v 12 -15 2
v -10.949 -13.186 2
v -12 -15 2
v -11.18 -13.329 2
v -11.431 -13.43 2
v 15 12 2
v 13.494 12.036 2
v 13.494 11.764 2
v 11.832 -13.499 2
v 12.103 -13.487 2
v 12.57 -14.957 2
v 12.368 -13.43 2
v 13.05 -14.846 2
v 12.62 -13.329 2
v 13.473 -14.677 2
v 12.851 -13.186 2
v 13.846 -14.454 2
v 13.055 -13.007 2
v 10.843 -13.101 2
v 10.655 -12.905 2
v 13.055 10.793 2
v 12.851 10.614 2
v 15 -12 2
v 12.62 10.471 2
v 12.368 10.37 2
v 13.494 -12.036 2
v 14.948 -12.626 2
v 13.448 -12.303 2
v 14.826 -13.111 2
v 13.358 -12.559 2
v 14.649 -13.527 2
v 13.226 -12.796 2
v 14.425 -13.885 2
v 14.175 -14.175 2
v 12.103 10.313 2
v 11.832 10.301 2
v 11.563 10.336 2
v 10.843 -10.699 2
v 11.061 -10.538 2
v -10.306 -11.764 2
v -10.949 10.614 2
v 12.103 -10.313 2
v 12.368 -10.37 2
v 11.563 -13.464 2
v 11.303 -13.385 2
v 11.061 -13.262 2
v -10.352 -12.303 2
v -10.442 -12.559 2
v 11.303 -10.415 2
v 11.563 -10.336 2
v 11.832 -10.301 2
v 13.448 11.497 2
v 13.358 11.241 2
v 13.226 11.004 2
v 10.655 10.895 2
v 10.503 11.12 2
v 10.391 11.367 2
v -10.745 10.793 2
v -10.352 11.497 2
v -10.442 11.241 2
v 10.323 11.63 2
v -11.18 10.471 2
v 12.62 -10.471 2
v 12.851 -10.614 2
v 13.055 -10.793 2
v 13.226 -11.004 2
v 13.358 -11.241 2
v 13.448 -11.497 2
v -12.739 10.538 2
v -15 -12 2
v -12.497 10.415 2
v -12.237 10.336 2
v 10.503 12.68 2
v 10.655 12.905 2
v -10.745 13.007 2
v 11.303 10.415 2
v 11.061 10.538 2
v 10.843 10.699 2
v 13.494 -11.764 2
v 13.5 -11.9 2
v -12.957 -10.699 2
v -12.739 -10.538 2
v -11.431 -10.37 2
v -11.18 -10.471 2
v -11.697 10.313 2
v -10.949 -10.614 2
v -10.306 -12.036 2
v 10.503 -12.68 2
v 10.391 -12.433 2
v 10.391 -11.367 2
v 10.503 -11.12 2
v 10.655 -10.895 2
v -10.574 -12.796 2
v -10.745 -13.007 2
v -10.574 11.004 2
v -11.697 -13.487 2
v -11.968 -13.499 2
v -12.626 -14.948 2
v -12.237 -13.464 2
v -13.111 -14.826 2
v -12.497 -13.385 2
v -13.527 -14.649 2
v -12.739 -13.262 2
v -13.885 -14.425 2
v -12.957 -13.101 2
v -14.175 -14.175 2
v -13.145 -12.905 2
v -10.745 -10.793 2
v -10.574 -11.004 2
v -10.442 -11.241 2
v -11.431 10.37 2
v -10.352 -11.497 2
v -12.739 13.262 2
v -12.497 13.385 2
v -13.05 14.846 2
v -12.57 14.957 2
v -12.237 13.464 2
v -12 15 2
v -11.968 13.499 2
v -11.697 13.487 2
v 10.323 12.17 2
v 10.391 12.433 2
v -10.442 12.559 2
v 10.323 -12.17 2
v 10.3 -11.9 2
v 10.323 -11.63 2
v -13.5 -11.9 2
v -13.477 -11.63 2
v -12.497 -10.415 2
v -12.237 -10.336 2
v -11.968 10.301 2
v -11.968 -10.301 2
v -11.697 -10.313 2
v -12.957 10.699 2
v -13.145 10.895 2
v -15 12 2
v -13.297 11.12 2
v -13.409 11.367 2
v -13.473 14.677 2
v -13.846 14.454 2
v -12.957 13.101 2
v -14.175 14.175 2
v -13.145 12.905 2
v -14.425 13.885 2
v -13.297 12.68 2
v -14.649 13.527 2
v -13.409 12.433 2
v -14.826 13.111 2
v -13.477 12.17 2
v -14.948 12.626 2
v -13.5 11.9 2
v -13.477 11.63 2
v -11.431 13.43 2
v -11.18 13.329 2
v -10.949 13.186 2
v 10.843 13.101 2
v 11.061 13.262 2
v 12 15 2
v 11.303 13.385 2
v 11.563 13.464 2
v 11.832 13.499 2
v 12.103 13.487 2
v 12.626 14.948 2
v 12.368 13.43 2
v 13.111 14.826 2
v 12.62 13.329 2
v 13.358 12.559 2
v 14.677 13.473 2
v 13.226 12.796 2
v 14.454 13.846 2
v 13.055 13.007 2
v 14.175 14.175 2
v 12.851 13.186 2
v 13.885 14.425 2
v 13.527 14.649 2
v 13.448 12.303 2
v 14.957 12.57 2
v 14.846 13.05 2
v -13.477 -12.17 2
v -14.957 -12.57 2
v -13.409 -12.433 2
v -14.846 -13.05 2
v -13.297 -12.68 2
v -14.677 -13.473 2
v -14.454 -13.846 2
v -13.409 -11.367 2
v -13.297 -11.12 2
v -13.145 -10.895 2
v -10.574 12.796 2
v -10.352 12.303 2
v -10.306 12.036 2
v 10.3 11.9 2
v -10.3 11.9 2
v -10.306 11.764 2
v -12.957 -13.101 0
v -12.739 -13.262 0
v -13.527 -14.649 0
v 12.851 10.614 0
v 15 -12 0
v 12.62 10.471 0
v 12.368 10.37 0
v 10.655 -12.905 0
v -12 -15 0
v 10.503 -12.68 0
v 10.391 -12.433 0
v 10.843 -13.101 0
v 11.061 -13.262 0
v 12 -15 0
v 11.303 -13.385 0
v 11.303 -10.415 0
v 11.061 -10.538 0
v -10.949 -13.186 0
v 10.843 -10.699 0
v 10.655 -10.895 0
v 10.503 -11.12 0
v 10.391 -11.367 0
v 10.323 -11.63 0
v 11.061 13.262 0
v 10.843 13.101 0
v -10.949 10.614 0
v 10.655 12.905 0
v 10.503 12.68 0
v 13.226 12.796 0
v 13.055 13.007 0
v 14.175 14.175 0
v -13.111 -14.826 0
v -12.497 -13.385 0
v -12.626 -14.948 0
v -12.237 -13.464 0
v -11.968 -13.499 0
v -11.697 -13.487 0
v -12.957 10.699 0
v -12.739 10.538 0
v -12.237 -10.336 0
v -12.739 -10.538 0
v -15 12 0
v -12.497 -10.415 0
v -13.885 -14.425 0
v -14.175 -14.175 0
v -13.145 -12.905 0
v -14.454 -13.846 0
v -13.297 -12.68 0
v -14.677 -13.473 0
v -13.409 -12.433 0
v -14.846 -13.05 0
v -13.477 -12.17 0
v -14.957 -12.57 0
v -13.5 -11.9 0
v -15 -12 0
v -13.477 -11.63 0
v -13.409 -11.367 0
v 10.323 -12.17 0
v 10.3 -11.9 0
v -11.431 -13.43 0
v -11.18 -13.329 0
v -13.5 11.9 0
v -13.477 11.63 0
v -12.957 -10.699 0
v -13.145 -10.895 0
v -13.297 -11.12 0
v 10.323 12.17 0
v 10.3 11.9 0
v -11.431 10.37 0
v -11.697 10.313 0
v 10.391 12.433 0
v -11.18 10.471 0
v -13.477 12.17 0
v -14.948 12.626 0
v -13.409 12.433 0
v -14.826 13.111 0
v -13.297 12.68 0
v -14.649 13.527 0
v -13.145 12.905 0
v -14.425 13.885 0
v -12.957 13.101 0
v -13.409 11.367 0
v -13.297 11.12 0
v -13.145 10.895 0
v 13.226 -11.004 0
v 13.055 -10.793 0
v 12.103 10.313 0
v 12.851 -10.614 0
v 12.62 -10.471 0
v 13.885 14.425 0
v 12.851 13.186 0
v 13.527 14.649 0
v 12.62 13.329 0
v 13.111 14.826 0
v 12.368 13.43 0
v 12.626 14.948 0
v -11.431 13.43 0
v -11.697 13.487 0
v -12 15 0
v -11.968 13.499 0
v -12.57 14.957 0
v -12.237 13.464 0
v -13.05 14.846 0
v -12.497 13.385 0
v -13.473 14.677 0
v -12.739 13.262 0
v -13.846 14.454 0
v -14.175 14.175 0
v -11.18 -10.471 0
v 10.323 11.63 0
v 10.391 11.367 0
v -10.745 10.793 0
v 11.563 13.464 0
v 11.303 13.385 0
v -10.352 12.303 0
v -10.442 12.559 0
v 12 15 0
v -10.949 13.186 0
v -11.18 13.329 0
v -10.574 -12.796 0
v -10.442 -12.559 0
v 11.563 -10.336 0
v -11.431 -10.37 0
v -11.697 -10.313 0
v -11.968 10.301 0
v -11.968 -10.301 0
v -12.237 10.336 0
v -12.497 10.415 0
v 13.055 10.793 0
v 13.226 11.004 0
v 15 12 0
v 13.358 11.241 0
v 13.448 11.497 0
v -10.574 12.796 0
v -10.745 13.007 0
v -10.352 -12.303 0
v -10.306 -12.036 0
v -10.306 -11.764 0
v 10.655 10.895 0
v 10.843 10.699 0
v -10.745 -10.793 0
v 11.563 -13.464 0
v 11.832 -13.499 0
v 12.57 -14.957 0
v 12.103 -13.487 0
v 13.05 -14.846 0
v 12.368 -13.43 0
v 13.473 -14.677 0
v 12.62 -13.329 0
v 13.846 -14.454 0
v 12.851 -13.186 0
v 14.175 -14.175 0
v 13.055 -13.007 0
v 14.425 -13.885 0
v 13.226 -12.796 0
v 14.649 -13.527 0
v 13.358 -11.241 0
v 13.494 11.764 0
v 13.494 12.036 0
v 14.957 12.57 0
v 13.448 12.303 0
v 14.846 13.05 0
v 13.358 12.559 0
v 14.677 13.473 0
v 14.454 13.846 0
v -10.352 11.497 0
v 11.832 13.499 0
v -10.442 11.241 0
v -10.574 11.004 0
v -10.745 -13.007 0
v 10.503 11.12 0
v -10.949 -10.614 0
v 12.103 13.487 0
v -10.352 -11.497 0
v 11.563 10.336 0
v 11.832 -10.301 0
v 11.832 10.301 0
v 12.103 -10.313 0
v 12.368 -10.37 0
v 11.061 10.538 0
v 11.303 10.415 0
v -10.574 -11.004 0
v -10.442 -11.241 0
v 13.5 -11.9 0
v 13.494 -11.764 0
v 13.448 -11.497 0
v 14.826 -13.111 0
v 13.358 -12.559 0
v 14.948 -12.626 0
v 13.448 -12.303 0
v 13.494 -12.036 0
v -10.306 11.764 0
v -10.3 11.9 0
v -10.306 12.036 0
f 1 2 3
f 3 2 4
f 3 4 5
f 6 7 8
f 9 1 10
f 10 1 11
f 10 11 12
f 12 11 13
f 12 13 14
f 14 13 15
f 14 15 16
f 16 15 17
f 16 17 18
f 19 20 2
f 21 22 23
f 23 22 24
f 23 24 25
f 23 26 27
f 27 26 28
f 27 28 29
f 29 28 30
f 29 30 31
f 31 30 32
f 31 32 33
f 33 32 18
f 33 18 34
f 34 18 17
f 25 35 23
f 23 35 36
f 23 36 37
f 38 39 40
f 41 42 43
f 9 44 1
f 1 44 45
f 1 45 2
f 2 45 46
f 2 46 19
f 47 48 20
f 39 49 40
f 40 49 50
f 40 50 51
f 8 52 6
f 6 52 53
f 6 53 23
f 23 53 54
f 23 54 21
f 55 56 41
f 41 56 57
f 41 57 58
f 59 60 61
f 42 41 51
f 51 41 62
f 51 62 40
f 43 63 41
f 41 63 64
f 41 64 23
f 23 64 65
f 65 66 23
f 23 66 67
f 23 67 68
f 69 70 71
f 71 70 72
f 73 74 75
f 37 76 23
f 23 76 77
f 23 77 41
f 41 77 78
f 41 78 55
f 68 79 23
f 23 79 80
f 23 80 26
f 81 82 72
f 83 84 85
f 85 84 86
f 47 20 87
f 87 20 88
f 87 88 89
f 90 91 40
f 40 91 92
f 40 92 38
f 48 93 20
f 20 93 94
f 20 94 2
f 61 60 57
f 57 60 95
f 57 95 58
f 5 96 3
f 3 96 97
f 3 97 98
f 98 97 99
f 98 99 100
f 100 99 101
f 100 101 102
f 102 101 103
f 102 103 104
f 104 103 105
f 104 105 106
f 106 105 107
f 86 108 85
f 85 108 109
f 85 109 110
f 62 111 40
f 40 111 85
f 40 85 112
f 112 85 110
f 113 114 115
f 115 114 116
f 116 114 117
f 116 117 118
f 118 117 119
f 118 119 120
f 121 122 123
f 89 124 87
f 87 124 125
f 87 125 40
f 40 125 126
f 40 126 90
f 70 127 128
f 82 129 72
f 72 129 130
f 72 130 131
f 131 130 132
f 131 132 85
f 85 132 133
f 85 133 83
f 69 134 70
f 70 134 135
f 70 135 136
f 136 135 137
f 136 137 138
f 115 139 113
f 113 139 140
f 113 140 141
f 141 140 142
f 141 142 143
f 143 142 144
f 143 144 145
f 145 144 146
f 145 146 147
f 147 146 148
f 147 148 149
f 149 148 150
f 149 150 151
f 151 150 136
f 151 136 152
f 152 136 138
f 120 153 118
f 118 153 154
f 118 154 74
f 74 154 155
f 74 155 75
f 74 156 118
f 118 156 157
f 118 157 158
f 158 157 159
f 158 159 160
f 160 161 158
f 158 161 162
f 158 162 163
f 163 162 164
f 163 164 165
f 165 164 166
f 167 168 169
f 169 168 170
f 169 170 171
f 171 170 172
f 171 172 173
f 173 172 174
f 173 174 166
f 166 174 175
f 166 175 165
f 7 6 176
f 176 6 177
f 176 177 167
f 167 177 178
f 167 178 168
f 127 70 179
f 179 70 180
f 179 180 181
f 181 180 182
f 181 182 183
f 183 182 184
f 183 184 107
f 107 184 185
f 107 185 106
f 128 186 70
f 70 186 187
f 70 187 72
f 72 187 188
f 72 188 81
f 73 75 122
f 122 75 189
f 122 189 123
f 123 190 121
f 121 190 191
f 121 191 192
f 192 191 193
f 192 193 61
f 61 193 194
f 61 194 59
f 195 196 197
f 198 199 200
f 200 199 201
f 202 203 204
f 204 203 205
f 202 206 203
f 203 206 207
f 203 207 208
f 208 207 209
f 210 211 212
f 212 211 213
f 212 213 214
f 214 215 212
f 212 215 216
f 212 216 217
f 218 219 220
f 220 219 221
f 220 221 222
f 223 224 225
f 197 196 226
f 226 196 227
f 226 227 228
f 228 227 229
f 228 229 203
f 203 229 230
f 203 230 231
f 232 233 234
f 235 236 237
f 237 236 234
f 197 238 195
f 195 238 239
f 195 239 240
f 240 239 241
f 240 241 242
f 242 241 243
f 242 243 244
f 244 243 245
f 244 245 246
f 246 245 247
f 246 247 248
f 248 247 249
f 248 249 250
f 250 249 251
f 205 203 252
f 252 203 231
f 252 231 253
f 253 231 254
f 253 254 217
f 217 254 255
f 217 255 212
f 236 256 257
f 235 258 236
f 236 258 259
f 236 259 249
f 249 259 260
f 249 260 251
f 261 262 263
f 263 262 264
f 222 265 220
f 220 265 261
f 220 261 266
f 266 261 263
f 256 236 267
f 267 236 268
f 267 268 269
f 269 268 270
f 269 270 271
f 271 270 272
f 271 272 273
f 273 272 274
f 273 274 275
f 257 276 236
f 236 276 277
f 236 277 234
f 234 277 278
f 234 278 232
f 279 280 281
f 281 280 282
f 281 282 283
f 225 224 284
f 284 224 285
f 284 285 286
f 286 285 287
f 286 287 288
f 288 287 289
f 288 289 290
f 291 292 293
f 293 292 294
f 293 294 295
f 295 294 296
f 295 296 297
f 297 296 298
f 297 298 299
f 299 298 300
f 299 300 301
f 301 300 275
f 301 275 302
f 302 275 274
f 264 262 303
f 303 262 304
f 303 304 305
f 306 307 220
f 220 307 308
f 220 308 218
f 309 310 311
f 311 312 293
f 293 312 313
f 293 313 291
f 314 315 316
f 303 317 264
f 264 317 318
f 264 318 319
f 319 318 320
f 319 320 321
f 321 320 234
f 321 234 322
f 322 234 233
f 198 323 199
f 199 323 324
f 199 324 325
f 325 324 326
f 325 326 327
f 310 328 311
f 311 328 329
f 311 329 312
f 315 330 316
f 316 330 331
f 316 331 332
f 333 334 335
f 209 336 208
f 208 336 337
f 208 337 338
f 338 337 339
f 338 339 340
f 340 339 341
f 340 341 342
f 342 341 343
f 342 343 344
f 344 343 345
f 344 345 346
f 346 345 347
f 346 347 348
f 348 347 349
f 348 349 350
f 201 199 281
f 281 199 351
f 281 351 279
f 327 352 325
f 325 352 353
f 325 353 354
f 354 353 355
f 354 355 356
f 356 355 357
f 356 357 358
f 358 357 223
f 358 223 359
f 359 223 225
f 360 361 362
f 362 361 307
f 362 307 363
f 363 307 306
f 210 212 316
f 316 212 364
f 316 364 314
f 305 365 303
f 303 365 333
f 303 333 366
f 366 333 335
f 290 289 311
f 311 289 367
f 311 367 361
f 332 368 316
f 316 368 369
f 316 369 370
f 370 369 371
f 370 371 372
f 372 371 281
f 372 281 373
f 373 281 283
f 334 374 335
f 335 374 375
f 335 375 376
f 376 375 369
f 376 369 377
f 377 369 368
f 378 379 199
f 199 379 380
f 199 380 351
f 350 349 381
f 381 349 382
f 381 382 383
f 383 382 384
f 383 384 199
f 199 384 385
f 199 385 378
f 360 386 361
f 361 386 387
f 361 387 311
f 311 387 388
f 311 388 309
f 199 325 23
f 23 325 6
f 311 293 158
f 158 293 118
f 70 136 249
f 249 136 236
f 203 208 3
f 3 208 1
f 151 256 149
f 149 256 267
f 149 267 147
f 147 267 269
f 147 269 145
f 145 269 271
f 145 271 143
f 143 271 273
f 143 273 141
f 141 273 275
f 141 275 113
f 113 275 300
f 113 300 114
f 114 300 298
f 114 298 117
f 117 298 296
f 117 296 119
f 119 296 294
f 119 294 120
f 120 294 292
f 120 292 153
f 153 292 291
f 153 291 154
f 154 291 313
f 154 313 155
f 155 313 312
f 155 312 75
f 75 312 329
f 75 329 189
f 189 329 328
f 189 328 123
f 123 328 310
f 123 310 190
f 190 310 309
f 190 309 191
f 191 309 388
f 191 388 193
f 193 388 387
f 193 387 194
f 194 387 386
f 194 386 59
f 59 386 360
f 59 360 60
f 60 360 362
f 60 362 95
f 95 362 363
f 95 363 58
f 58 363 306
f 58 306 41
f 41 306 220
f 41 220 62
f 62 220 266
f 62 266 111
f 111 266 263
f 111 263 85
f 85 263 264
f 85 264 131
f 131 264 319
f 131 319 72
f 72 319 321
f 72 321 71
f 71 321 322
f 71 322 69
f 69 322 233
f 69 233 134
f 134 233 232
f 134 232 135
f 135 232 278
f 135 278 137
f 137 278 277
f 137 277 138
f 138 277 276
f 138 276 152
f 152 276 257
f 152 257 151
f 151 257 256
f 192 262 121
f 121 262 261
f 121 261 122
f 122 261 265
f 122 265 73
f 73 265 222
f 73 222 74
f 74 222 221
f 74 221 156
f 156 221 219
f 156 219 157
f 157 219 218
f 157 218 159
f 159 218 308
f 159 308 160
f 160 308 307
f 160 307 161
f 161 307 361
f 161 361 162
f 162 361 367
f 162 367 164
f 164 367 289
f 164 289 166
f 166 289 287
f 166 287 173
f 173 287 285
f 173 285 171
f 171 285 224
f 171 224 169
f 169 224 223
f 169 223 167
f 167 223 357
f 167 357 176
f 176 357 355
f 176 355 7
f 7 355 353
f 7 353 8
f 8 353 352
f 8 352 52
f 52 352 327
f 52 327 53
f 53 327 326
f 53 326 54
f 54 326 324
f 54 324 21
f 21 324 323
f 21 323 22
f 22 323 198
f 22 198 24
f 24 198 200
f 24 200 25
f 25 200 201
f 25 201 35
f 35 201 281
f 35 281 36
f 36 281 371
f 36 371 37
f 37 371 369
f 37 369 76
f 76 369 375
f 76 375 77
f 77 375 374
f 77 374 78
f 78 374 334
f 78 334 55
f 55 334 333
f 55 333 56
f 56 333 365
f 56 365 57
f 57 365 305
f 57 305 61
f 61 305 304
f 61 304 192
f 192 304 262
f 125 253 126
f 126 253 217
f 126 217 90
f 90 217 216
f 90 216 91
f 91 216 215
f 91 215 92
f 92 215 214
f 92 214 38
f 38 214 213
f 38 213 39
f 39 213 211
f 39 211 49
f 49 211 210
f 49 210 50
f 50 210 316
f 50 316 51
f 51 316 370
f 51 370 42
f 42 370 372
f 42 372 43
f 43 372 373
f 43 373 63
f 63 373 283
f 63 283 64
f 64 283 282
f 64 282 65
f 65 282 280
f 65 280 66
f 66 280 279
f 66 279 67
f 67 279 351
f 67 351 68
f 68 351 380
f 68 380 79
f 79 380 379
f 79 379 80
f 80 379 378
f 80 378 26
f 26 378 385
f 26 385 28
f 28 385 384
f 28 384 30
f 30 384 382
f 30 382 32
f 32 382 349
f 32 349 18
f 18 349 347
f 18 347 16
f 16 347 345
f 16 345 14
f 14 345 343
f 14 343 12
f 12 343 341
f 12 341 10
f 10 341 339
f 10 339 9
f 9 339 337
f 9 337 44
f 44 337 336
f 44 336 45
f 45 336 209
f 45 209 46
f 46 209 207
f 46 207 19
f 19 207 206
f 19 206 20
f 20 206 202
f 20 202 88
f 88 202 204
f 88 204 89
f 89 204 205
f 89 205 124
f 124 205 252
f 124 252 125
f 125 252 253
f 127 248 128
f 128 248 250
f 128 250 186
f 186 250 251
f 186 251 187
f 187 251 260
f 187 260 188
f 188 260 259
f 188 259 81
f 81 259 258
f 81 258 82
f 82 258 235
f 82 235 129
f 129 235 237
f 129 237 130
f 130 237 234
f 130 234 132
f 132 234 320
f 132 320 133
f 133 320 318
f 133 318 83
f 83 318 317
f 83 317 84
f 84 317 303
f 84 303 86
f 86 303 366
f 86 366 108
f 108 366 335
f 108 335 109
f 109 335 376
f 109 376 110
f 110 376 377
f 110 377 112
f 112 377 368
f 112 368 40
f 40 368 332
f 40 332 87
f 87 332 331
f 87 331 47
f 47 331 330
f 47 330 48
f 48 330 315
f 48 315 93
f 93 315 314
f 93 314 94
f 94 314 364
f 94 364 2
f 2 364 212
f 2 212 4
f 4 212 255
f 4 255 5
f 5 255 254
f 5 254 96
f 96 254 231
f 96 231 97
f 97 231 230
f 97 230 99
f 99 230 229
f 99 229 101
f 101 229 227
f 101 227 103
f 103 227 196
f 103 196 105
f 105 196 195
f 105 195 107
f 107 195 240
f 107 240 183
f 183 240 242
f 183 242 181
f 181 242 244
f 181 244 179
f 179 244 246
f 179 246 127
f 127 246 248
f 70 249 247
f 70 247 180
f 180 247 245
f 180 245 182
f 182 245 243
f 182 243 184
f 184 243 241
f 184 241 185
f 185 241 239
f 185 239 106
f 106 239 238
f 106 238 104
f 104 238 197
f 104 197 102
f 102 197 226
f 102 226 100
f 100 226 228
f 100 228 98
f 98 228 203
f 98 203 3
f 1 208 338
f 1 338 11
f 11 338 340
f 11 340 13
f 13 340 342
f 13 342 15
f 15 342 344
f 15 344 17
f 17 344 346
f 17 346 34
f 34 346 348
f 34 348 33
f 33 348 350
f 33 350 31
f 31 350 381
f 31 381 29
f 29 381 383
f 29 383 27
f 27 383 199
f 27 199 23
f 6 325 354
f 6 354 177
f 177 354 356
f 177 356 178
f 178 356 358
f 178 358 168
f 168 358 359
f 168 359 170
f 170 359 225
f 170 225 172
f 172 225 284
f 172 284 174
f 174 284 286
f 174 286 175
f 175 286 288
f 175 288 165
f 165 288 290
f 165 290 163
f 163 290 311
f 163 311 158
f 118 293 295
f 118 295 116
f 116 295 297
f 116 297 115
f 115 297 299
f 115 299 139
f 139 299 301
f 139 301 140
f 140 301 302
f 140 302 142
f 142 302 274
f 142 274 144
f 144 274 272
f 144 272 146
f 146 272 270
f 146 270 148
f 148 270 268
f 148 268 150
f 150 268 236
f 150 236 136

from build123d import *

# Parameters (mm, degrees)
SKETCH_1_W      = 30
SKETCH_1_H      = 30
SKETCH_1_R      = 1.6
EXTRUDE_1_DEPTH = 2
FILLET_1_SIZE   = 3


with BuildPart() as part:
    # 草图1 → 凸台-拉伸1 (new body)
    with BuildSketch(Plane.XY):
        Rectangle(SKETCH_1_W, SKETCH_1_H)
        with Locations((-11.899958033, 11.899958033)):
            Circle(SKETCH_1_R, mode=Mode.SUBTRACT)
        with Locations(Location((11.899958033, 11.899958033, 0), (0, 0, 180))):
            Circle(SKETCH_1_R, mode=Mode.SUBTRACT)
        with Locations((11.899958033, -11.899958033)):
            Circle(SKETCH_1_R, mode=Mode.SUBTRACT)
        with Locations(Location((-11.899958033, -11.899958033, 0), (0, 0, 180))):
            Circle(SKETCH_1_R, mode=Mode.SUBTRACT)
    extrude(amount=EXTRUDE_1_DEPTH)

    # 圆角1
    # a fillet whose section is not a circle: 3 mm, written as the material it takes off along each edge
    with BuildSketch(Plane(origin=(-15, -15, -7.5), x_dir=(1, 0, 0), z_dir=(0, 0, 1)), Plane(origin=(15, -15, -7.5), x_dir=(0, 1, 0), z_dir=(0, 0, 1)), Plane(origin=(15, 15, -7.5), x_dir=(-1, 0, 0), z_dir=(0, 0, 1))) as fillet_1_piece_1:
        with BuildLine():
            Bezier((FILLET_1_SIZE, 0), (0, 0), (0, FILLET_1_SIZE), weights=[1, 0.818181818, 1])
            Line((0, FILLET_1_SIZE), (0, 0))
            Line((0, 0), (FILLET_1_SIZE, 0))
        make_face()
    extrude(amount=17, mode=Mode.SUBTRACT)
    with BuildSketch(Plane(origin=(-15, 15, -7.5), x_dir=(1, 0, 0), z_dir=(0, 0, 1))) as fillet_1_piece_2:
        with BuildLine():
            Bezier((FILLET_1_SIZE, 0), (0, 0), (0, -FILLET_1_SIZE), weights=[1, 0.818181818, 1])
            Line((0, -FILLET_1_SIZE), (0, 0))
            Line((0, 0), (FILLET_1_SIZE, 0))
        make_face()
    extrude(amount=17, mode=Mode.SUBTRACT)


solid = part.part
